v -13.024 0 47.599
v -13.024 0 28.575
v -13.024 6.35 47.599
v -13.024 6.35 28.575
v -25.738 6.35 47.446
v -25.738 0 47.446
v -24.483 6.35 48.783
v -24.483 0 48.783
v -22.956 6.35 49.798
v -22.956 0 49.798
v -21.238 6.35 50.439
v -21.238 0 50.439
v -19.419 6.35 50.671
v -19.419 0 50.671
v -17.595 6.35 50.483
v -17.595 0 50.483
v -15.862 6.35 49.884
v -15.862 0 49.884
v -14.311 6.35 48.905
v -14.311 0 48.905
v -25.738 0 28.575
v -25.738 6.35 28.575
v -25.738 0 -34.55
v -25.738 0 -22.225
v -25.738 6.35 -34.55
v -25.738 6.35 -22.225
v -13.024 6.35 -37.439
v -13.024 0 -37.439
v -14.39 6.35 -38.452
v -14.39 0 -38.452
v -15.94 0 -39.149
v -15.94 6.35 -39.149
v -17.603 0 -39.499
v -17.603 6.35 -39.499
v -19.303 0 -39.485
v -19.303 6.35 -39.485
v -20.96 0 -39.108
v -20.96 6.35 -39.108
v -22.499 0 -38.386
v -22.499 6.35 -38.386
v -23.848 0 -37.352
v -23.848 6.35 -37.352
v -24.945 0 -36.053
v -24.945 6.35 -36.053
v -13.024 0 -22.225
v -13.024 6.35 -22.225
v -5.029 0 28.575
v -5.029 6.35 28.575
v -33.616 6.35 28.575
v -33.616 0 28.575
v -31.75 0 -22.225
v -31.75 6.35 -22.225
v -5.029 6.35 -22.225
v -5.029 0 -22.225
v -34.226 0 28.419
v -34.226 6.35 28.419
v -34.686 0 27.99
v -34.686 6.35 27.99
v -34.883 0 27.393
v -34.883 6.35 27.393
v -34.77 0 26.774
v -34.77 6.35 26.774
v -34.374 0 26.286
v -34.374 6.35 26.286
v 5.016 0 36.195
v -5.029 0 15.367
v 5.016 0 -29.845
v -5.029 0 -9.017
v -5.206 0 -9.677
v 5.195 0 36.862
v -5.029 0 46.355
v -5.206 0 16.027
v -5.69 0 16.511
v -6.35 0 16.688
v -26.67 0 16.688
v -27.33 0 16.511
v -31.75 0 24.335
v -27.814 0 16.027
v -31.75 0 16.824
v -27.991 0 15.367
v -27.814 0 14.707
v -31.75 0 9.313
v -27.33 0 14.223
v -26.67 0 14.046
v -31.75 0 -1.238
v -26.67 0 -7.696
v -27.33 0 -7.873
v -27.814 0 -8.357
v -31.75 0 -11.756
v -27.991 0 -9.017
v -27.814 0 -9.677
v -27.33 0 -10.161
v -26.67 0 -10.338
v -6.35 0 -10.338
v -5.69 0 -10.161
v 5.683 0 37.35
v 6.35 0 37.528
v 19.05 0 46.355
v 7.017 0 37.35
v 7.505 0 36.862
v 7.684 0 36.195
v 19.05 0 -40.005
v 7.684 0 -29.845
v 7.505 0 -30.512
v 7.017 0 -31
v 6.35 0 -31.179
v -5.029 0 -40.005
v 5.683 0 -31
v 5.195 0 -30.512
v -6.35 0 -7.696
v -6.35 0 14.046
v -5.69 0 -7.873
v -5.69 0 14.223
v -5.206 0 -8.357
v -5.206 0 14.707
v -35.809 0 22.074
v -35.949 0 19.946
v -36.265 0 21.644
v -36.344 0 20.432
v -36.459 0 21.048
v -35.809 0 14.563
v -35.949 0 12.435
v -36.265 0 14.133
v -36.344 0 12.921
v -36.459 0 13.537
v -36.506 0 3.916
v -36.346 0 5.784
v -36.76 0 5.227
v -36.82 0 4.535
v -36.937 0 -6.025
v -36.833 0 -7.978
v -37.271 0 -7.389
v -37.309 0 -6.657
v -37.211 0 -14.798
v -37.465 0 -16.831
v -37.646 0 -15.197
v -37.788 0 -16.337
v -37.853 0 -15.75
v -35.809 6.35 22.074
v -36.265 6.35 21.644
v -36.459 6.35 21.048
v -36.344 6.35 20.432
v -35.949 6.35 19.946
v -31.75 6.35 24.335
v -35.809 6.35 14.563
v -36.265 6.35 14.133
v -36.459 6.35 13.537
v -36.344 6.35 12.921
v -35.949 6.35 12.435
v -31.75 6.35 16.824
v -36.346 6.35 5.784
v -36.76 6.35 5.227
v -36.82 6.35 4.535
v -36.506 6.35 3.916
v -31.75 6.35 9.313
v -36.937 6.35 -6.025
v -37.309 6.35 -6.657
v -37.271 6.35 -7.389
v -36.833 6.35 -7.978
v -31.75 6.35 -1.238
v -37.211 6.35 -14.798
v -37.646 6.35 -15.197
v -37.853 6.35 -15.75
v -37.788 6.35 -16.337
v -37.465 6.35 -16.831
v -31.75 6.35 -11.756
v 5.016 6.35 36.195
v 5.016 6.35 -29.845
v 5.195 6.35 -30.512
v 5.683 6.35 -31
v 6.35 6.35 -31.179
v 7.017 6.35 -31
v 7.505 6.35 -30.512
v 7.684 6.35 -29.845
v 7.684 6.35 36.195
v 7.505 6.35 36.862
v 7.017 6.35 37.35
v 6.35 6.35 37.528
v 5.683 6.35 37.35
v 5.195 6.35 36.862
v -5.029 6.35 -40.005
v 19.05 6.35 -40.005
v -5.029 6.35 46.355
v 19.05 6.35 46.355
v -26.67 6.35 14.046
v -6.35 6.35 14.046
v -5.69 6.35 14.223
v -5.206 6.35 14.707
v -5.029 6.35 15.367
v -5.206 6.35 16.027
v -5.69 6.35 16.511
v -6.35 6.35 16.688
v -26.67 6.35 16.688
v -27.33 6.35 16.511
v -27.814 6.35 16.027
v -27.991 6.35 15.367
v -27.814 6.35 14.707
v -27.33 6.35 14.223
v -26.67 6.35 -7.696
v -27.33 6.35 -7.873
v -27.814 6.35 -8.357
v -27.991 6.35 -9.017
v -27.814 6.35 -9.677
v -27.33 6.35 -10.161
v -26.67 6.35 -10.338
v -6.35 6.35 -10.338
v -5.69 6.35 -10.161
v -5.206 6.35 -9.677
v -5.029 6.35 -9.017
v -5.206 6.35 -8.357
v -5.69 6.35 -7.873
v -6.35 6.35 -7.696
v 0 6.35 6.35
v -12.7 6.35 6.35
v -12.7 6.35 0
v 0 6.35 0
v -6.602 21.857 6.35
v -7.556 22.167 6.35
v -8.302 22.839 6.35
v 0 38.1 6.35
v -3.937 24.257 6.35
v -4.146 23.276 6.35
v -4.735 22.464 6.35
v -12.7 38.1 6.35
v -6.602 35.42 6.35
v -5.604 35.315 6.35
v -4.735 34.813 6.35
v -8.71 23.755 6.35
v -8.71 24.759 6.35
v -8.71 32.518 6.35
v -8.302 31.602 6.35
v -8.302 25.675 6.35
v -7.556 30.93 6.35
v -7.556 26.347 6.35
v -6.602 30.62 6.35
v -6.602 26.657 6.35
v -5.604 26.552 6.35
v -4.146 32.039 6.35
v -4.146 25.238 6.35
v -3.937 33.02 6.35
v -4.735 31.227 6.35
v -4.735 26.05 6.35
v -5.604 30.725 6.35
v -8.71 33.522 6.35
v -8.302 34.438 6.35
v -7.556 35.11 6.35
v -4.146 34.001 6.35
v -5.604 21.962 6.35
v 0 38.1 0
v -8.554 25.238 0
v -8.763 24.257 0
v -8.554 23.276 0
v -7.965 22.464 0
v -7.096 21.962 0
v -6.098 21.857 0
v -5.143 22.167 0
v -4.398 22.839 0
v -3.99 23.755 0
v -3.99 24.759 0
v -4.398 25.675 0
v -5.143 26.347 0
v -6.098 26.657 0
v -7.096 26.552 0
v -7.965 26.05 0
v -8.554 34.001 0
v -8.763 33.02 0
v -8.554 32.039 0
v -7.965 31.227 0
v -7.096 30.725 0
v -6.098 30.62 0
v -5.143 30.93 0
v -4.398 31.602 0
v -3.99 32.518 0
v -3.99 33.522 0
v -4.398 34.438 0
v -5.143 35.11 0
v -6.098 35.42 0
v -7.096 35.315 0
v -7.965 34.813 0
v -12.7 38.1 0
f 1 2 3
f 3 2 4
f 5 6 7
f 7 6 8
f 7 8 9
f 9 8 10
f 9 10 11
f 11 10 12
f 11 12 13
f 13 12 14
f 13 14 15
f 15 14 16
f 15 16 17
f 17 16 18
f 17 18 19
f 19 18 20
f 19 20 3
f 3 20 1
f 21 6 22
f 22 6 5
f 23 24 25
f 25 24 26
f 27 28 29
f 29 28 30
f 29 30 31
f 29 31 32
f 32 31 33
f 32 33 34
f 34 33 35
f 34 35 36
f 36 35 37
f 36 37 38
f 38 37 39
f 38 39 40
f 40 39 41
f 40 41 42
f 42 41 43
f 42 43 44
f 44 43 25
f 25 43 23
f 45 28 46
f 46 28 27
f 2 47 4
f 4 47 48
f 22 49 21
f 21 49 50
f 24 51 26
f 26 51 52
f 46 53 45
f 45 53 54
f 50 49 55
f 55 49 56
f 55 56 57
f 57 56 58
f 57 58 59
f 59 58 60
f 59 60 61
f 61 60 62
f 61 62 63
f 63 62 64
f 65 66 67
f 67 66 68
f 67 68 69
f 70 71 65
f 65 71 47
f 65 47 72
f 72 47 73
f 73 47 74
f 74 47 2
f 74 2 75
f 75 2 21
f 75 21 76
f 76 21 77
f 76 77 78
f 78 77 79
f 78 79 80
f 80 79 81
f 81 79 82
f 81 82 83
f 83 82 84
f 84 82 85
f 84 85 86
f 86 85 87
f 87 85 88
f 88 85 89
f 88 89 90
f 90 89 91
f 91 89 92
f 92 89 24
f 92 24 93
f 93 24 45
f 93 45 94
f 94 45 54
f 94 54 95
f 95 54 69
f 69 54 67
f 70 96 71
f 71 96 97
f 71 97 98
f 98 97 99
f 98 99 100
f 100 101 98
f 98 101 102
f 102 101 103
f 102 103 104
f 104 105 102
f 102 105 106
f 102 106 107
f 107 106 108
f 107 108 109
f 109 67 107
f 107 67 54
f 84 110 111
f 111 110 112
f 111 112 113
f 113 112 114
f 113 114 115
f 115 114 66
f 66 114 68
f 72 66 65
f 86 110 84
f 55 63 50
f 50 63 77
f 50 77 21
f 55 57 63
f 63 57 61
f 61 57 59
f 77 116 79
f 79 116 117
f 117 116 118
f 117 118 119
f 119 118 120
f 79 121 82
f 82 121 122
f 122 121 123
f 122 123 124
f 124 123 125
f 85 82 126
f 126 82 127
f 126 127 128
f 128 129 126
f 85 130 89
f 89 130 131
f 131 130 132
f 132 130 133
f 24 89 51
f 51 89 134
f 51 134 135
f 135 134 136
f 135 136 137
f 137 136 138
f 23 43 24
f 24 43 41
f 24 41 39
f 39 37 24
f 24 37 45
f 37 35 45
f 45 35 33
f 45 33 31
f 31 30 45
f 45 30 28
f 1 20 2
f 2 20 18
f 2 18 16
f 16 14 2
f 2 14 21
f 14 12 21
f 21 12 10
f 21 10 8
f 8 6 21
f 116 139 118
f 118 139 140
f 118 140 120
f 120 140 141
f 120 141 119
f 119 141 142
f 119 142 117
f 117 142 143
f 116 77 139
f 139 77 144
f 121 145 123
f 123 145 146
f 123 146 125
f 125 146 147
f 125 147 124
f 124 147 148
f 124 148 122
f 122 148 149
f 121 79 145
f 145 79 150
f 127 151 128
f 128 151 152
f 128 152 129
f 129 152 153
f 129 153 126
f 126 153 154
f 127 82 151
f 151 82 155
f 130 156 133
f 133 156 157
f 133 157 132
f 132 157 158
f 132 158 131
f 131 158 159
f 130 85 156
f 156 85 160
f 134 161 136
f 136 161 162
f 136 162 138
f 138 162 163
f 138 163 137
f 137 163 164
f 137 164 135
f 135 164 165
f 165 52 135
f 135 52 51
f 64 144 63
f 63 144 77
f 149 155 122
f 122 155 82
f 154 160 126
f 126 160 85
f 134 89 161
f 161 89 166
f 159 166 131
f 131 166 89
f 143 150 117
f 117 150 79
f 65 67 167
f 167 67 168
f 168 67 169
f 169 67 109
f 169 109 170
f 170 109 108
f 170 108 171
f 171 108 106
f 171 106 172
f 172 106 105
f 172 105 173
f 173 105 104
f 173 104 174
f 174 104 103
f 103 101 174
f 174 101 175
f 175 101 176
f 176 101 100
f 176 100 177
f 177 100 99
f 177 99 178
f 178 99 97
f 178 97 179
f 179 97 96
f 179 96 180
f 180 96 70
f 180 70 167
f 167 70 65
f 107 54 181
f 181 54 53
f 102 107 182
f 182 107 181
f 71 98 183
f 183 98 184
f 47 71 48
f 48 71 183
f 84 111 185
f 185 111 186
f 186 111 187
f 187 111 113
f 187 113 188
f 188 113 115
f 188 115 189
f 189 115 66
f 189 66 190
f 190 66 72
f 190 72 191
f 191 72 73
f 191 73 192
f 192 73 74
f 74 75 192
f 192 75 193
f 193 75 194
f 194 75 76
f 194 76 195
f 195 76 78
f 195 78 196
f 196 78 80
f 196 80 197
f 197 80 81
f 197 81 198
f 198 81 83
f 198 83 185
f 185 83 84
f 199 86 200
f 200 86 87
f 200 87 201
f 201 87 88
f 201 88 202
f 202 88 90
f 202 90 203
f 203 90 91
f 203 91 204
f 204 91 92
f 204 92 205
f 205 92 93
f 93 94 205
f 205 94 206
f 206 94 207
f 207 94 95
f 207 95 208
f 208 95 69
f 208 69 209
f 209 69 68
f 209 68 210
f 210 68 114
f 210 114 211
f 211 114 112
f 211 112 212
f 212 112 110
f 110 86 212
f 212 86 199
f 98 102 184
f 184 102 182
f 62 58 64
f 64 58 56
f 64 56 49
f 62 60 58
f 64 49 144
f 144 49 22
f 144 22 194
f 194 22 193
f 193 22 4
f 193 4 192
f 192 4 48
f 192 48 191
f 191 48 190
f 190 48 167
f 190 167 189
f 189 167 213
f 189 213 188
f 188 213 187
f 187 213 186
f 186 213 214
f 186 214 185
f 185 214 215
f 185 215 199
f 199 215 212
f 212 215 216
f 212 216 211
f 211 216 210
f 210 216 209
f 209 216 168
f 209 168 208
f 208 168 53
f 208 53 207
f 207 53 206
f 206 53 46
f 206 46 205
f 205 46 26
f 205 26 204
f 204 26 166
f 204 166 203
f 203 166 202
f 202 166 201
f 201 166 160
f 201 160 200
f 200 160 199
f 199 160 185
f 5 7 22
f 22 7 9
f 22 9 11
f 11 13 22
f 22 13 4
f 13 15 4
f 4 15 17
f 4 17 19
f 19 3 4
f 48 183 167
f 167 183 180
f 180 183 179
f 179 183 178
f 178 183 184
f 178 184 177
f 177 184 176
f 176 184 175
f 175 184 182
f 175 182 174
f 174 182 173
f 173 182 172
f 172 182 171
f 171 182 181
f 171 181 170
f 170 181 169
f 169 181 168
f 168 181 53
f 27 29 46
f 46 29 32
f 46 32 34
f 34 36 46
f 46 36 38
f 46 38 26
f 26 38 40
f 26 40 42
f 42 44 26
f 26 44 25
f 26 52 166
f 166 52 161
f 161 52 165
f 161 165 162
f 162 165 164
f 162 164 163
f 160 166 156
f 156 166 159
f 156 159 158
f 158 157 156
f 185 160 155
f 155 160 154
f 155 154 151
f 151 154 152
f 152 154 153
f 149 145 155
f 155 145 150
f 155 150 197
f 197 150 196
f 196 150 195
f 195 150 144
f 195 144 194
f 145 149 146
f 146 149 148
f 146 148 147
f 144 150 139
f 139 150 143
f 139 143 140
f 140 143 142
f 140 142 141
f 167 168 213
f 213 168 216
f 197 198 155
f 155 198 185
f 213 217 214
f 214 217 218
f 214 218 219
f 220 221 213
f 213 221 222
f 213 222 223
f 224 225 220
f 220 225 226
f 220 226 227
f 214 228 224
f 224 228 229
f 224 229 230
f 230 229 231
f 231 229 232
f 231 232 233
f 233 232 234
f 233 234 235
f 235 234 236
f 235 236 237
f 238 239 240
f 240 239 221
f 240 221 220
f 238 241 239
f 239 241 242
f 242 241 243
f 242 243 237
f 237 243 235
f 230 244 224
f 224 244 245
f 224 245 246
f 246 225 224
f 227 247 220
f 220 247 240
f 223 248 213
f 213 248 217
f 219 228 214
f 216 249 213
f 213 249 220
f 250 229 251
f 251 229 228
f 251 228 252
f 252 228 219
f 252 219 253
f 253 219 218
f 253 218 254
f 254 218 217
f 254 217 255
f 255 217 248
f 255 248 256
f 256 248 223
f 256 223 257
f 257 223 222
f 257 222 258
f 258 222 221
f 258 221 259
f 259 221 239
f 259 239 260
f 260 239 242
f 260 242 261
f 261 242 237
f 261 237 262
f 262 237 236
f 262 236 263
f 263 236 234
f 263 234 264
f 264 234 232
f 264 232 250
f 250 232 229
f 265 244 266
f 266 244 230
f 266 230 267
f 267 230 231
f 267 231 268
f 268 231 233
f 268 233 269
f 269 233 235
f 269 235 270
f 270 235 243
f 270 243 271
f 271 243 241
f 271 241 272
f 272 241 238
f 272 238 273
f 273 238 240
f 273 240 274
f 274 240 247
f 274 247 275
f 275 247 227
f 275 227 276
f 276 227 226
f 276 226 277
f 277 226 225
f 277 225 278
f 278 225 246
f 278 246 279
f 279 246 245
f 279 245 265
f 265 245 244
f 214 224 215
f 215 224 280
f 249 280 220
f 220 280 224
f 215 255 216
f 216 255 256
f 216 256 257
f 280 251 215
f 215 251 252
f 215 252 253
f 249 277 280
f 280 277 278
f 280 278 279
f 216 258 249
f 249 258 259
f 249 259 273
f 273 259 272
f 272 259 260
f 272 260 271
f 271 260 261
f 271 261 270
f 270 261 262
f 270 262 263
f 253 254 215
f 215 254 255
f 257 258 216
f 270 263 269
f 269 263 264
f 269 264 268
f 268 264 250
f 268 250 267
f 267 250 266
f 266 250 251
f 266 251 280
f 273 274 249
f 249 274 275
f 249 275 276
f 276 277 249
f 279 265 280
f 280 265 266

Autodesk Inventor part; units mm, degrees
ref_plane "YZ Plane" through (0, 0, 0) normal (1, 0, 0) x (0, 1, 0)
ref_plane "XZ Plane" through (0, 0, 0) normal (0, 1, 0) x (-1, 0, 0)
ref_plane "XY Plane" through (0, 0, 0) normal (0, 0, 1) x (1, 0, 0)
sketch "Sketch1" plane through (0, 0, 0) normal (0, 0, 1) x (1, 0, 0)
  line L0 (0, 0) -> (0, 38.1)
  line L1 (0, 38.1) -> (-12.7, 38.1)
  line L2 (-12.7, 38.1) -> (-12.7, 0)
  line L3 (-12.7, 0) -> (0, 0)
  dimension "d0" = 38.1
  dimension "d1" = 12.7
extrude "Extrusion1" add sketch "Sketch1" along normal blind 6.35
sketch "Sketch2" plane through (0, 0, 6.35) normal (0, 0, 1) x (1, 0, 0)
  line L0 (0, 38.1) -> (-12.7, 38.1) projected
  line L1 (-12.7, 38.1) -> (-12.7, 0) projected
  line L2 (-12.7, 0) -> (0, 0) projected
  line L3 (0, 0) -> (0, 38.1) projected
  line L4 (-6.35, 38.1) -> (-6.35, 0) construction
  line L5 (-6.35, 38.1) -> (-6.35, 33.02)
  circle A0 centre (-6.35, 33.02) radius 2.413
  line L6 (-6.35, 33.02) -> (-6.35, 24.257)
  circle A1 centre (-6.35, 24.257) radius 2.413
  dimension "d4" = 5.08
  dimension "d5" = 4.826
  dimension "d6" = 8.763
  dimension "d7" = 4.826
extrude "Extrusion2" cut sketch "Sketch2" against normal up to next contours A1 | A0 L6 L5 | L5 L6 A0
sketch "Sketch3" plane through (-12.7, 0, 0) normal (0, -1, 0) x (1, 0, 0)
  line L0 (0, 0) -> (12.7, 0) projected
  line L1 (12.7, 0) -> (12.7, 6.35) projected
  line L2 (0, 6.35) -> (12.7, 6.35) projected
  line L3 (0, 0) -> (0, 6.35) projected
  line L4 (0, 3.175) -> (12.7, 3.175) construction
  line L5 (6.35, 6.35) -> (6.35, 0) construction
  line L6 (-19.05, -22.225) -> (-19.05, 28.575)
  line L7 (-19.05, 28.575) -> (31.75, 28.575)
  line L8 (31.75, 28.575) -> (31.75, -22.225)
  line L9 (31.75, -22.225) -> (-19.05, -22.225)
  line L10 (-19.05, -22.225) -> (31.75, 28.575) construction
  line L11 (-19.05, 28.575) -> (31.75, -22.225) construction
  point P0 (6.35, 3.175)
  dimension "d10" = 50.8
  dimension "d11" = 50.8
extrude "Extrusion3" add sketch "Sketch3" against normal blind 6.35
sketch "Sketch4" plane through (-31.75, 0, 28.575) normal (0, -1, 0) x (1, 0, 0)
  line L0 (50.8, -50.8) -> (50.8, 0) projected
  line L1 (50.8, 0) -> (0, 0) projected
  line L2 (0, 0) -> (0, -50.8) projected
  line L3 (0, -50.8) -> (50.8, -50.8) projected
  line L4 (0, -25.4) -> (50.8, -25.4) construction
  line L5 (0, -25.4) -> (0, -13.208)
  line L6 (0, -13.208) -> (5.08, -13.208)
  line L7 (5.08, -13.208) -> (25.4, -13.208) construction
  line L8 (5.08, -14.5288) -> (25.4, -14.5288)
  line L9 (25.4, -11.8872) -> (5.08, -11.8872)
  arc A0 (5.08, -11.8872) -> (5.08, -14.5288) centre (5.08, -13.208) ccw
  arc A1 (25.4, -14.5288) -> (25.4, -11.8872) centre (25.4, -13.208) ccw
  line L10 (5.08, -36.2712) -> (25.4, -36.2712)
  line L11 (25.4, -38.9128) -> (5.08, -38.9128)
  arc A2 (5.08, -36.2712) -> (5.08, -38.9128) centre (5.08, -37.592) ccw
  arc A3 (25.4, -38.9128) -> (25.4, -36.2712) centre (25.4, -37.592) ccw
  point P0 (31.75, -28.575)
  point P1 (15.24, -13.208)
  dimension "d14" = 12.192
  dimension "d16" = 5.08
  dimension "d17" = 20.32
  dimension "d18" = 2.6416
extrude "Extrusion4" cut sketch "Sketch4" against normal blind 6.35 contours A0 L9 A1 L8 | L10 A3 L11 A2
sketch "Sketch6" plane through (-31.75, 0, 28.575) normal (0, -1, 0) x (1, 0, 0)
  line L0 (25.4, -14.5288) -> (5.08, -14.5288) projected
  arc A0 (5.08, -11.8872) -> (5.08, -14.5288) centre (5.08, -13.208) ccw projected
  line L1 (5.08, -11.8872) -> (25.4, -11.8872) projected
  arc A1 (25.4, -14.5288) -> (25.4, -11.8872) centre (25.4, -13.208) ccw projected
  arc A2 (5.08, -36.2712) -> (5.08, -38.9128) centre (5.08, -37.592) ccw projected
  line L2 (5.08, -36.2712) -> (25.4, -36.2712) projected
  arc A3 (25.4, -38.9128) -> (25.4, -36.2712) centre (25.4, -37.592) ccw projected
  line L3 (25.4, -38.9128) -> (5.08, -38.9128) projected
  line L4 (50.8, -50.8) -> (50.8, 0) projected
  line L5 (50.8, 0) -> (0, 0) projected
  line L6 (0, 0) -> (0, -50.8) projected
  line L7 (0, -50.8) -> (50.8, -50.8) projected
  line L8 (26.7208, -13.208) -> (26.7208, -50.8)
  line L9 (26.7208, -13.208) -> (26.7208, 0)
  line L10 (26.7208, 0) -> (26.7208, 17.78)
  line L11 (26.7208, -50.8) -> (26.7208, -68.58)
  line L12 (26.7208, 17.78) -> (50.8, 17.78)
  line L13 (50.8, 17.78) -> (50.8, 0)
  line L14 (26.7208, -68.58) -> (50.8, -68.58)
  line L15 (50.8, -68.58) -> (50.8, -50.8)
  point P0 (31.75, -28.575)
  dimension "d23" = 17.78
  dimension "d24" = 17.78
extrude "Extrusion5" add sketch "Sketch6" against normal blind 6.35 contours L10 L12 L13 L5 | L7 L15 L14 L11
sketch "Sketch7" plane through (-31.75, 0, -22.225) normal (0, -1, 0) x (1, 0, 0)
  line L0 (25.4, 36.2712) -> (5.08, 36.2712) projected
  arc A0 (5.08, 38.9128) -> (5.08, 36.2712) centre (5.08, 37.592) ccw projected
  line L1 (5.08, 38.9128) -> (25.4, 38.9128) projected
  arc A1 (25.4, 36.2712) -> (25.4, 38.9128) centre (25.4, 37.592) ccw projected
  arc A2 (5.08, 14.5288) -> (5.08, 11.8872) centre (5.08, 13.208) ccw projected
  line L2 (5.08, 14.5288) -> (25.4, 14.5288) projected
  arc A3 (25.4, 11.8872) -> (25.4, 14.5288) centre (25.4, 13.208) ccw projected
  line L3 (25.4, 11.8872) -> (5.08, 11.8872) projected
  line L4 (50.8, -17.78) -> (50.8, 68.58) projected
  line L5 (50.8, 68.58) -> (26.7208, 68.58) projected
  line L6 (26.7208, 68.58) -> (26.7208, 50.8) projected
  line L7 (26.7208, 50.8) -> (0, 50.8) projected
  line L8 (0, 50.8) -> (0, 0) projected
  line L9 (0, 0) -> (26.7208, 0) projected
  line L10 (26.7208, 0) -> (26.7208, -17.78) projected
  line L11 (26.7208, -17.78) -> (50.8, -17.78) projected
  line L12 (25.4, 37.592) -> (25.4, 13.208) construction
  line L13 (25.4, 25.4) -> (50.8, 25.4) construction
  line L14 (38.1, -7.62) -> (38.1, 58.42) construction
  line L15 (39.4335, -7.62) -> (39.4335, 58.42)
  line L16 (36.7665, 58.42) -> (36.7665, -7.62)
  arc A4 (36.7665, -7.62) -> (39.4335, -7.62) centre (38.1, -7.62) ccw
  arc A5 (39.4335, 58.42) -> (36.7665, 58.42) centre (38.1, 58.42) ccw
  point P0 (31.75, 22.225)
  point P1 (38.1, 25.4)
  dimension "d27" = 33.02
  dimension "d28" = 2.667
extrude "Extrusion6" cut sketch "Sketch7" against normal blind 6.35 contours A4 L16 A5 L15
sketch "Sketch8" plane through (-31.75, 0, -22.225) normal (0, -1, 0) x (1, 0, 0)
  line L0 (0, 0) -> (0, 50.8) projected
  line L1 (0, 0) -> (-6.9749, 6.5838)
  line L2 (-6.9749, 6.5838) -> (0, 10.4686)
  line L3 (0, 10.4686) -> (-6.3127, 15.1611)
  line L4 (-6.3127, 15.1611) -> (0, 20.9868)
  line L5 (-5.6991, 27.1623) -> (0, 31.5381)
  line L6 (0, 20.9868) -> (-5.6991, 27.1623)
  line L7 (0, 31.5381) -> (-5.7764, 35.832)
  line L8 (-5.7764, 35.832) -> (0, 39.0492)
  line L9 (-5.4281, 43.0842) -> (0, 39.0492)
  line L10 (-5.7764, 43.343) -> (0, 46.5602)
  line L11 (-5.7036, 50.8) -> (0, 50.8)
  line L12 (0, 50.8) -> (0, 46.5602)
  line L13 (-5.7036, 50.8) -> (0, 46.5602)
  line L14 (-5.7764, 43.343) -> (0, 39.0492)
  point P0 (31.75, 22.225)
  point P1 (-5.4281, 43.0842)
extrude "Extrusion7" add sketch "Sketch8" against normal blind 6.35
fillet "Fillet1" radius 1.27 1 edges at (-38.7249, 3.175, -15.6412)
fillet "Fillet2" radius 1.27 1 edges at (-38.0627, 3.175, -7.0639)
fillet "Fillet3" radius 1.27 4 edges at (-37.4491, 3.175, 4.9373) (-37.5264, 3.175, 13.607) (-37.5264, 3.175, 21.118) (-37.4536, 3.175, 28.575)
sketch "Sketch9" plane through (-5.0292, 0, -40.005) normal (0, -1, 0) x (1, 0, 0)
  line L0 (-26.7208, 17.78) -> (0, 17.78) projected
  line L1 (-7.995, 17.78) -> (-7.995, 5.2737)
  line L2 (-20.7092, 17.78) -> (-20.7092, 5.4549)
  arc A0 (-20.7092, 5.4549) -> (-7.995, 2.5659) centre (-13.3604, 8.3747) ccw
  line L3 (-7.995, 5.2737) -> (-7.995, 2.5659)
  line L4 (24.0792, 0) -> (24.0792, 86.36) projected
  line L5 (24.0792, 43.18) -> (-30.9425, 43.18) construction
  line L6 (-28.5871, 68.58) -> (0, 68.58) projected
  line L7 (-7.995, 68.58) -> (-7.995, 82.6845)
  line L8 (-20.7092, 68.58) -> (-20.7092, 82.6845)
  line L9 (-20.7092, 82.6845) -> (-20.7092, 87.4507)
  line L10 (-7.995, 82.6845) -> (-7.995, 87.6044)
  arc A1 (-7.995, 87.6044) -> (-20.7092, 87.4507) centre (-14.2936, 82.6845) ccw
  point P0 (5.0292, 40.005)
extrude "Extrusion8" add sketch "Sketch9" against normal blind 6.35
properties part number "camera_cutout"
